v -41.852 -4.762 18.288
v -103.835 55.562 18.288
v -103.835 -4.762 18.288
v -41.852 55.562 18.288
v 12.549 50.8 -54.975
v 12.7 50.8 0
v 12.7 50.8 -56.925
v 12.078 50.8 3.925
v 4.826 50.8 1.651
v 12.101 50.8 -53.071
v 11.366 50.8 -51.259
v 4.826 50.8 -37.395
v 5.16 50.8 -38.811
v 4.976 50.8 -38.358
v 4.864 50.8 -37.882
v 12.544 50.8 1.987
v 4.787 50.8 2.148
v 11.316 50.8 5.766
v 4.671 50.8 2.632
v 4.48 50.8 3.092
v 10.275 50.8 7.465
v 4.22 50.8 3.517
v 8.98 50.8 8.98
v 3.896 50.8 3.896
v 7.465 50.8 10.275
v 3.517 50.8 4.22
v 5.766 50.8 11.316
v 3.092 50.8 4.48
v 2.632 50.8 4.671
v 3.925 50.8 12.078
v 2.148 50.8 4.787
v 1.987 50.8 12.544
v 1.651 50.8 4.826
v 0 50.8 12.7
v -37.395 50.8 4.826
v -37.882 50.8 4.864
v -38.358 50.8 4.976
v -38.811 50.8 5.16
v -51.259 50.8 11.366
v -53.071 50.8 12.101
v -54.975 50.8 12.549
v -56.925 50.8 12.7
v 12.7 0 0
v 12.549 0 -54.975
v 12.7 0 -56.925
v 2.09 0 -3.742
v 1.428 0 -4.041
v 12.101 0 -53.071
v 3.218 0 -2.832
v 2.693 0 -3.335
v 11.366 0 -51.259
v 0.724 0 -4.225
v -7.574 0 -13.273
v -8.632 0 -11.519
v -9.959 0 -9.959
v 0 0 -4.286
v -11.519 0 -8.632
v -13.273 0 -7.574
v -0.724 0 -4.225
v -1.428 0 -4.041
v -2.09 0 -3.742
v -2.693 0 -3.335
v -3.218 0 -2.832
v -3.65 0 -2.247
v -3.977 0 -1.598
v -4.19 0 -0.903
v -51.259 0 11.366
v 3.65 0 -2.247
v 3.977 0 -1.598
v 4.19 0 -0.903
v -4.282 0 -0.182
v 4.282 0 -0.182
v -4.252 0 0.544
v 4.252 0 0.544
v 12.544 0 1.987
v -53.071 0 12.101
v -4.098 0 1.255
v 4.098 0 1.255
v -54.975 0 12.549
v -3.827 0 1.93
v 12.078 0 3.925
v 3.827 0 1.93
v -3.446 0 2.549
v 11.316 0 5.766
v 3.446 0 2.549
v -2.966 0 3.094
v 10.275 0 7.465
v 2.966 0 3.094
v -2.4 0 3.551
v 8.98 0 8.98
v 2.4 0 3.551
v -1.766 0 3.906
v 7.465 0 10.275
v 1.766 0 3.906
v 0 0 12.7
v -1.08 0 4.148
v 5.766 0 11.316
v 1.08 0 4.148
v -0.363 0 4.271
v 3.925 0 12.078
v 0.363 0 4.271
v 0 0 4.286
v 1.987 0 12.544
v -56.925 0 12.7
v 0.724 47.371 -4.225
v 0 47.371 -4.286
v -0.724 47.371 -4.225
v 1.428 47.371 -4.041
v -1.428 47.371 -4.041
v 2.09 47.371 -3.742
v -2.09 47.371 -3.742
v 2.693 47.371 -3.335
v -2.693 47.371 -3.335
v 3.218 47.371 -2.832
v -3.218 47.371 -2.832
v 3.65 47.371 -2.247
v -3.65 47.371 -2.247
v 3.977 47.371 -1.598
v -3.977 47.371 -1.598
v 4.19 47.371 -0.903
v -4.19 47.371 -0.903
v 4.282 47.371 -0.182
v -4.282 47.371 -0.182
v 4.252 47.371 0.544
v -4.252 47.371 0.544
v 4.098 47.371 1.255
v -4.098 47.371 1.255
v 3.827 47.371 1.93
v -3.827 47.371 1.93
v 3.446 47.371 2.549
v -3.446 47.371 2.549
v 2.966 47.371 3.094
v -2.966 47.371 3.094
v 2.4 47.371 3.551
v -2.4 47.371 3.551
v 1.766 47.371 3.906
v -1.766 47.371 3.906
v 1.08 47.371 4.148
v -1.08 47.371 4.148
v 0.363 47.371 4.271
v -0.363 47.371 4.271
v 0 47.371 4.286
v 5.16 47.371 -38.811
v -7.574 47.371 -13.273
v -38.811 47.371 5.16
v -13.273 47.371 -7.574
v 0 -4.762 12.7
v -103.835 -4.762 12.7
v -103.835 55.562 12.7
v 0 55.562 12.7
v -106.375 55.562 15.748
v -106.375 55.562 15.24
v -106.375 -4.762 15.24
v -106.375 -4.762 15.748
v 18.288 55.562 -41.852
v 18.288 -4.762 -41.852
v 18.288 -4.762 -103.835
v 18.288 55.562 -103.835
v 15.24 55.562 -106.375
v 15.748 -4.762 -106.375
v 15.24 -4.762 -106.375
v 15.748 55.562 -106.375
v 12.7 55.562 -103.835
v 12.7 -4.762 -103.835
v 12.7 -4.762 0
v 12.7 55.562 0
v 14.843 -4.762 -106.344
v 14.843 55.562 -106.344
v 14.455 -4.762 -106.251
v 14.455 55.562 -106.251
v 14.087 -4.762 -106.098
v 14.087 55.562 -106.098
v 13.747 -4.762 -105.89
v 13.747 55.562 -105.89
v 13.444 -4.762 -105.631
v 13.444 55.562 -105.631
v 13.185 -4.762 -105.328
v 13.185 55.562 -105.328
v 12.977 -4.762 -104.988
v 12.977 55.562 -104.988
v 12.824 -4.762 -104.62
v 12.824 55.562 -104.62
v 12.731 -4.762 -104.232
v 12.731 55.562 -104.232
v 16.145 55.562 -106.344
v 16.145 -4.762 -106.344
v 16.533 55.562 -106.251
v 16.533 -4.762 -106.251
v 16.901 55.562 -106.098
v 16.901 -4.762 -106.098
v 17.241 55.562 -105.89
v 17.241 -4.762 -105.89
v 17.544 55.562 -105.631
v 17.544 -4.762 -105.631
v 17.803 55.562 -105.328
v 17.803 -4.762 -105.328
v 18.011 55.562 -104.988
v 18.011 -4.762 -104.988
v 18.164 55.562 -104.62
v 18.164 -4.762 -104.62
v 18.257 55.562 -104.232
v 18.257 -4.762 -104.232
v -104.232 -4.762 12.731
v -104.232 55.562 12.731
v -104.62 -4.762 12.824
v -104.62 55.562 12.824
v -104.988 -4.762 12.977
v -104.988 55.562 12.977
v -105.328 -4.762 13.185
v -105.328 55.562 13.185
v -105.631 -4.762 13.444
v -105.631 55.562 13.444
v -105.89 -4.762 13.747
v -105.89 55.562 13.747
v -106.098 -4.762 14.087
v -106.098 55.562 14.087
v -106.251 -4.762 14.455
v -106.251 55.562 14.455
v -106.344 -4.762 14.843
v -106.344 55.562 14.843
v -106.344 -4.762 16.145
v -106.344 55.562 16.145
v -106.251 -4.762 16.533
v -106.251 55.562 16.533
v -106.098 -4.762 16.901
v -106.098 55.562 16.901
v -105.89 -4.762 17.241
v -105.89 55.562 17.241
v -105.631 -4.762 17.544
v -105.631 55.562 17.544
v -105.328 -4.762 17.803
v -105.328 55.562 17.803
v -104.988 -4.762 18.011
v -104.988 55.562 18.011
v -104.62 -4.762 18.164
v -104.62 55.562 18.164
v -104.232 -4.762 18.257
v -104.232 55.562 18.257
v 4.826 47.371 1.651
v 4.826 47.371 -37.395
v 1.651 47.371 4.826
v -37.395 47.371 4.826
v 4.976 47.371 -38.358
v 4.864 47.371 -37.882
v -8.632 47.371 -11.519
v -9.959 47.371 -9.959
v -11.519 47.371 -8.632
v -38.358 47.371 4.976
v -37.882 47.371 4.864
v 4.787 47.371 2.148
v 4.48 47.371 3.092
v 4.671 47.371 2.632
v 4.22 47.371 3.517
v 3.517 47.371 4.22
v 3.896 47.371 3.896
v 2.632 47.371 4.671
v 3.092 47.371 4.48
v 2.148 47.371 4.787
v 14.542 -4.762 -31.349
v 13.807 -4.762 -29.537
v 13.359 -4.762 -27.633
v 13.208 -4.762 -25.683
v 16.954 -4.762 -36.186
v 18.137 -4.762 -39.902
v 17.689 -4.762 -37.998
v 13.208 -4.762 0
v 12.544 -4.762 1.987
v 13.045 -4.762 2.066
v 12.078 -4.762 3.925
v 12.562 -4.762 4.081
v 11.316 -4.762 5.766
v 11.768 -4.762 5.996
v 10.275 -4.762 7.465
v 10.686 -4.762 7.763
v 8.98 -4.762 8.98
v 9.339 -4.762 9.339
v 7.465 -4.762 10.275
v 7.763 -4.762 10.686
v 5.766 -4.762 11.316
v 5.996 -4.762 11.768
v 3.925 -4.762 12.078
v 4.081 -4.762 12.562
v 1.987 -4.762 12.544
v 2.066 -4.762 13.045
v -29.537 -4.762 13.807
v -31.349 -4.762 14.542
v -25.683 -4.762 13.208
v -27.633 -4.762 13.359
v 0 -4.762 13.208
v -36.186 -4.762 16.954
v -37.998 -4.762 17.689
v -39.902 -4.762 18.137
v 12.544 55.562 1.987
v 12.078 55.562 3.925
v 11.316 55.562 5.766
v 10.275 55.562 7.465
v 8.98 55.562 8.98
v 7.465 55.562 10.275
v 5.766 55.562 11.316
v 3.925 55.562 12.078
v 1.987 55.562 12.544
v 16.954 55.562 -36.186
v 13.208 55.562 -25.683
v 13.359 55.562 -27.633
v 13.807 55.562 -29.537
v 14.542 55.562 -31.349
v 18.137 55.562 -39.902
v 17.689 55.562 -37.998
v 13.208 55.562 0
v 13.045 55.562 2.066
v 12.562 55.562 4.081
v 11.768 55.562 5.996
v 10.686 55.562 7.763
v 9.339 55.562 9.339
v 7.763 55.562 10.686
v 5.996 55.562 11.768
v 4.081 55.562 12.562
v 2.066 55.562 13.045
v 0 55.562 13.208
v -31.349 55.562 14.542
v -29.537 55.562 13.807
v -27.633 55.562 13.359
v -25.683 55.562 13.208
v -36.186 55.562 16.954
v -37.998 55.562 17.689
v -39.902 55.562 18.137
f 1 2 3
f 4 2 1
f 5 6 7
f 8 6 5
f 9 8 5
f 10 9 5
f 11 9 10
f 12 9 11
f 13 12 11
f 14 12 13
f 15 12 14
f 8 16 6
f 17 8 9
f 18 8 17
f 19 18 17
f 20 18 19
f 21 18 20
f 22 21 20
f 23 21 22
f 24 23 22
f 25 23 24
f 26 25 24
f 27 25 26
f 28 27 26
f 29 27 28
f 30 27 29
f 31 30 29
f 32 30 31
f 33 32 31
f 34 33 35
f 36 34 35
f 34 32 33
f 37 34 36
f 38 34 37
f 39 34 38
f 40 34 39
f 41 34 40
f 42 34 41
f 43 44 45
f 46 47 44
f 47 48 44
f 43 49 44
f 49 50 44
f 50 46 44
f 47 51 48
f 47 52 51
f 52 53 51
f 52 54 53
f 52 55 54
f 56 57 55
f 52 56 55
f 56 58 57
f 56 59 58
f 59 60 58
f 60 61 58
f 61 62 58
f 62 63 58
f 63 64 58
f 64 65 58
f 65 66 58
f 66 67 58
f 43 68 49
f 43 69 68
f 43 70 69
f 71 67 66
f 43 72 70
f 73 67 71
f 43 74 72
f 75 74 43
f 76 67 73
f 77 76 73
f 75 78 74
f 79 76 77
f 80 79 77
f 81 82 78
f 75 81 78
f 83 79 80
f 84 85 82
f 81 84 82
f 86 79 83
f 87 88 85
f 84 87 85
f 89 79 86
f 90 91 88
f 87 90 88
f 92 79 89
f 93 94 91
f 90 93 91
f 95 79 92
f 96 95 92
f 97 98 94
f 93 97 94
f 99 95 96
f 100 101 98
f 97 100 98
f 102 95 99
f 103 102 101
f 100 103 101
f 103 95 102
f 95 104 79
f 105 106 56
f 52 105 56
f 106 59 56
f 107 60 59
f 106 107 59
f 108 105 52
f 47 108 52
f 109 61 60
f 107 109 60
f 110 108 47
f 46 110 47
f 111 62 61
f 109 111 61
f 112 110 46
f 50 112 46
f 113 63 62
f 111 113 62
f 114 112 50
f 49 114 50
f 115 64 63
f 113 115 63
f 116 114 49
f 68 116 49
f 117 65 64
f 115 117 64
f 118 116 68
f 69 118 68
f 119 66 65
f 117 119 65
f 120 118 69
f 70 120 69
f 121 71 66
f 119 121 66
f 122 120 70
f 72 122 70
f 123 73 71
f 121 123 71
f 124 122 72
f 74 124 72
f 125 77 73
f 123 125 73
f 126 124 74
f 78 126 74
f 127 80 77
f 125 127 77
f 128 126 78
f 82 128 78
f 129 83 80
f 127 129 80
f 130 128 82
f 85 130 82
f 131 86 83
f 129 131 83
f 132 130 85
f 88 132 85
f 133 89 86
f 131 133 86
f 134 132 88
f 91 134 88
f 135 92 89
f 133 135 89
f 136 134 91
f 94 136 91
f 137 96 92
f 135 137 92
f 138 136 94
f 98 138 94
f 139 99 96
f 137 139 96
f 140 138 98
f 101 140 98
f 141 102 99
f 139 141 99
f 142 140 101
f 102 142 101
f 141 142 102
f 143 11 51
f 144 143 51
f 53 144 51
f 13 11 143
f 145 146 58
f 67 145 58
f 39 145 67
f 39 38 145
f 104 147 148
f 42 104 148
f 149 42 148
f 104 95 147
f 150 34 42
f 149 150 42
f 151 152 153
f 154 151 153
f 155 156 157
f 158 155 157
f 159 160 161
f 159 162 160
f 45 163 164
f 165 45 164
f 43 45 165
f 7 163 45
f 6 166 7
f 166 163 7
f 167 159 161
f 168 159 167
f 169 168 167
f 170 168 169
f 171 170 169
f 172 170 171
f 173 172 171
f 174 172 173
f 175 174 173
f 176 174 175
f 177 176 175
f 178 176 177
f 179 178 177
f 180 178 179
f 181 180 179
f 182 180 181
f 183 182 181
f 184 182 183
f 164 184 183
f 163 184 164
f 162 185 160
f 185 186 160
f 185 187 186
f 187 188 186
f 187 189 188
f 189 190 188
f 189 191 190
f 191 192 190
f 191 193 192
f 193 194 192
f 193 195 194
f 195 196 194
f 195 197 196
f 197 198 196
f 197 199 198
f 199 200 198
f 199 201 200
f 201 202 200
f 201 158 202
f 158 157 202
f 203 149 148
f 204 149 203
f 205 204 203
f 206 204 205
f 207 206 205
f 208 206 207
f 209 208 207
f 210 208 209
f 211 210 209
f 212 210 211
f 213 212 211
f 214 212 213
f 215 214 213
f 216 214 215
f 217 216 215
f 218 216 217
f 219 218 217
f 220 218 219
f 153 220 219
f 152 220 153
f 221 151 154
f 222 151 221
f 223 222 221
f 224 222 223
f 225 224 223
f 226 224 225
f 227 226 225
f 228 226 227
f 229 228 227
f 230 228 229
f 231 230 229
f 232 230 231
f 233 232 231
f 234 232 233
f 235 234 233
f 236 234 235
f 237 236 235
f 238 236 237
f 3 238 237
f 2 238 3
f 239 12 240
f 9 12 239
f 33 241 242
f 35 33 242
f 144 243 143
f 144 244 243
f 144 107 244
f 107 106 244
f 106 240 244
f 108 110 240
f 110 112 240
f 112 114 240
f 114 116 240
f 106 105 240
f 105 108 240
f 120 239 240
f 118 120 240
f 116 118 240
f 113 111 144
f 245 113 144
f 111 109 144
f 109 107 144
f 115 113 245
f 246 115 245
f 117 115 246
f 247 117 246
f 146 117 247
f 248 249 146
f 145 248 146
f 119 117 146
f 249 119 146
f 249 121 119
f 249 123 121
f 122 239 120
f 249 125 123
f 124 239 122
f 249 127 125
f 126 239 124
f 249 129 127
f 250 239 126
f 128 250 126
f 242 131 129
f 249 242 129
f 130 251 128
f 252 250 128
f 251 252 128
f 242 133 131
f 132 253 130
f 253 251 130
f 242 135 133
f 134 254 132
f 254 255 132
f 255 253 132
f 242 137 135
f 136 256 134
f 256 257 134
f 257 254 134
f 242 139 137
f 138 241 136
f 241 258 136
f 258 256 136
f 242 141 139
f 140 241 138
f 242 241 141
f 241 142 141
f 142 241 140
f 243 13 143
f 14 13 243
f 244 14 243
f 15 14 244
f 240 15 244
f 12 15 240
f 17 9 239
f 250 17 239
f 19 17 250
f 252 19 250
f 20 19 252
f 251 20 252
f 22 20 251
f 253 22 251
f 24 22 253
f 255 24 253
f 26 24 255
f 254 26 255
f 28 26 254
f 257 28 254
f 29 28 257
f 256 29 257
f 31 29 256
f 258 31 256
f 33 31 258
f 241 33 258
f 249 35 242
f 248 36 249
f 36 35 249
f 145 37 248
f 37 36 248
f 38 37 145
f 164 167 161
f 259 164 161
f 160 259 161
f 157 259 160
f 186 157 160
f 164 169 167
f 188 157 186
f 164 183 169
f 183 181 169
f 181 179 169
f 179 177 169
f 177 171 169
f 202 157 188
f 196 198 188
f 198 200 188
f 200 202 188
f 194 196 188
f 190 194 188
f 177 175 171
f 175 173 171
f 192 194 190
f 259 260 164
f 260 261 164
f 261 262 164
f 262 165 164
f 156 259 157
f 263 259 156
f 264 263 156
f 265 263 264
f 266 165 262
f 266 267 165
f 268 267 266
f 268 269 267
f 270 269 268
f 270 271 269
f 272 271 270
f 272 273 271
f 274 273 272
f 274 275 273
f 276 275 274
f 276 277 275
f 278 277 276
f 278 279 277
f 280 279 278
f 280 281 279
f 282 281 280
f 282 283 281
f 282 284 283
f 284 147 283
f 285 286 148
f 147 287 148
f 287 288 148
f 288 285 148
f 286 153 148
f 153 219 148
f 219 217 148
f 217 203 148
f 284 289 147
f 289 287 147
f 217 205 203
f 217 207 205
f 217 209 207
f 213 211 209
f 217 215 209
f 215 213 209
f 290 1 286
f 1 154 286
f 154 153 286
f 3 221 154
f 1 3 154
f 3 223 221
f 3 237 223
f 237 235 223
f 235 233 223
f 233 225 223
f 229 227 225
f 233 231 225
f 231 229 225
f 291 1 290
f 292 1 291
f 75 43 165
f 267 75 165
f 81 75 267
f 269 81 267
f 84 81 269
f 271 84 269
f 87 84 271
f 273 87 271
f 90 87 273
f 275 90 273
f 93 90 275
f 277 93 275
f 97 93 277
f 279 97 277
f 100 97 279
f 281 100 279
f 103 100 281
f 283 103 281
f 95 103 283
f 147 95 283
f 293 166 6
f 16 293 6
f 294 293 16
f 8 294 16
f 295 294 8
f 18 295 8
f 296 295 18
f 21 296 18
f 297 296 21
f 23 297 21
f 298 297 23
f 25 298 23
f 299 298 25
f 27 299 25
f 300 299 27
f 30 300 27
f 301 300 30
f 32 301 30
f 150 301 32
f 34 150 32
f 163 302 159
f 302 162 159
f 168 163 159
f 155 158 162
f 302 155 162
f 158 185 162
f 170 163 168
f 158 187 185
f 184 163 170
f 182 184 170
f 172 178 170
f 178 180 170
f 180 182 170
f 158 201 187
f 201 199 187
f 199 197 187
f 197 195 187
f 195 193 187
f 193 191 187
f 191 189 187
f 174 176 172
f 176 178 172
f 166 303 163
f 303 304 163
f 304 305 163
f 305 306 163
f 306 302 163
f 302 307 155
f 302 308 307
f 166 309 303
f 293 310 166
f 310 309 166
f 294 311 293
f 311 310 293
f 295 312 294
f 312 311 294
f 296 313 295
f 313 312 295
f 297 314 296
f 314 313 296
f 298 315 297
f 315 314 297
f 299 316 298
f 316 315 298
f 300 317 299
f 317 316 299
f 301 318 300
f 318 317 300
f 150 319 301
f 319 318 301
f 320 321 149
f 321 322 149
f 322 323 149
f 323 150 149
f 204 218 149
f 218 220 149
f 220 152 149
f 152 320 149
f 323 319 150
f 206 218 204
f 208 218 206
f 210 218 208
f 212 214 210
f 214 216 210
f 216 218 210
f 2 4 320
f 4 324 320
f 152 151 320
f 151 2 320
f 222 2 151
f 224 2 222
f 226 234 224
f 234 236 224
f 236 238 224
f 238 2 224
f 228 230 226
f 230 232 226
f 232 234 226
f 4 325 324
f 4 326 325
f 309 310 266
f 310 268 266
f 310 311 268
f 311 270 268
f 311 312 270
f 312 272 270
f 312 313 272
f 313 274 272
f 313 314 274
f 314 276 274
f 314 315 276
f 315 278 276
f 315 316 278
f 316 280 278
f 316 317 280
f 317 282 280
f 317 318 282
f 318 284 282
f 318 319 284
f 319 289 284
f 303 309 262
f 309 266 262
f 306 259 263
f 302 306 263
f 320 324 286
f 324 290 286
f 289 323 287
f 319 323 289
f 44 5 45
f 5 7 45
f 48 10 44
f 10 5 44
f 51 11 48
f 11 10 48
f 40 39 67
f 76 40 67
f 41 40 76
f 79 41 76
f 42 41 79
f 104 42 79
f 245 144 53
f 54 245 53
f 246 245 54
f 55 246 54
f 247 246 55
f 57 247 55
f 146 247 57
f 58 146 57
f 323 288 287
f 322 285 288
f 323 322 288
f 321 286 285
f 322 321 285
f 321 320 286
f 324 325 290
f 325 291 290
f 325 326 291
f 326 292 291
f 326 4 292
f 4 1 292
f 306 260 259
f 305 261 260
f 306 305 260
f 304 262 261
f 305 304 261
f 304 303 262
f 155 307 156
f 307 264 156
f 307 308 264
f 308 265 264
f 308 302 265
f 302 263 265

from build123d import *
from build123d.topology import SkipClean

# Parameters (mm, degrees)
SKETCH1_R           = 4.28625
BOSS_EXTRUDE1_DEPTH = 50.8
FILLET2_R           = 2.54
SKETCH7_W           = 42.968170869
SKETCH7_H           = 42.968170869
CUT_EXTRUDE3_DEPTH  = 3.429
FILLET9_R           = 3.175
BOSS_EXTRUDE2_DEPTH = 30.1625
CUT_EXTRUDE4_DEPTH  = 163.081683034
FILLET10_R          = 12.7


with BuildPart() as part:
    # Sketch1 → Boss-Extrude1 (new body)
    with BuildSketch(Plane(origin=(0, 0, 0), x_dir=(1, 0, 0), z_dir=(0, 1, 0))):
        with BuildLine():
            Line((-106.3752, -18.288), (0, -18.288))
            ThreePointArc((0, -18.288), (12.931568814, -12.931568814), (18.288, 0))
            Line((18.288, 0), (18.288, 106.3752))
            Line((18.288, 106.3752), (12.7, 106.3752))
            Line((12.7, 106.3752), (12.7, 53.934971632))
            Line((12.7, 53.934971632), (-9.469611004, 9.469611004))
            Line((-9.469611004, 9.469611004), (-53.934971632, -12.7))
            Line((-53.934971632, -12.7), (-106.3752, -12.7))
            Line((-106.3752, -12.7), (-106.3752, -18.288))
        make_face()
        Circle(SKETCH1_R, mode=Mode.SUBTRACT)
    extrude(amount=BOSS_EXTRUDE1_DEPTH)

    # Fillet2
    fillet2_edges = [part.edges().sort_by_distance(p)[0] for p in [
        (12.7, 25.4, -106.3752),
        (18.288, 25.4, -106.3752),
        (-106.3752, 25.4, 12.7),
        (-106.3752, 25.4, 18.288),
    ]]
    fillet(fillet2_edges, radius=FILLET2_R)

    # Sketch7 → Cut-Extrude3 (cut)
    with BuildSketch(Plane(origin=(0, 50.8, 0), x_dir=(1, 0, 0), z_dir=(0, 1, 0))):
        with Locations((-16.658085435, 16.658085435)):
            Rectangle(SKETCH7_W, SKETCH7_H)
    extrude(amount=-CUT_EXTRUDE3_DEPTH, mode=Mode.SUBTRACT)

    # Fillet9
    fillet9_edges = [part.edges().sort_by_distance(p)[0] for p in [
        (4.826, 49.0855, -38.142170869),
        (4.826, 49.0855, 4.826),
        (-38.142170869, 49.0855, 4.826),
    ]]
    fillet(fillet9_edges, radius=FILLET9_R)

    # Sketch8 → Boss-Extrude2 (add, symmetric)
    with SkipClean():  # the faces are left unmerged after this step: merging them gives an invalid solid
        with BuildSketch(Plane(origin=(0, 25.4, 0), x_dir=(1, 0, 0), z_dir=(0, 1, 0))):
            with BuildLine():
                Line((0, -12.7), (-103.8352, -12.7))
                ThreePointArc((-103.8352, -12.7), (-105.631251224, -13.443948776), (-106.3752, -15.24))
                Line((-106.3752, -15.24), (-106.3752, -15.748))
                ThreePointArc((-106.3752, -15.748), (-105.631251224, -17.544051224), (-103.8352, -18.288))
                Line((-103.8352, -18.288), (0, -18.288))
                ThreePointArc((0, -18.288), (12.931568814, -12.931568814), (18.288, 0))
                Line((18.288, 0), (18.288, 103.8352))
                ThreePointArc((18.288, 103.8352), (17.544051224, 105.631251224), (15.748, 106.3752))
                Line((15.748, 106.3752), (15.24, 106.3752))
                ThreePointArc((15.24, 106.3752), (13.443948776, 105.631251224), (12.7, 103.8352))
                Line((12.7, 103.8352), (12.7, 0))
                ThreePointArc((12.7, 0), (8.980256121, -8.980256121), (0, -12.7))
            make_face()
        extrude(amount=BOSS_EXTRUDE2_DEPTH, both=True)
    add(part.part.scale(1), mode=Mode.REPLACE)  # the faces are merged on a copy

    # Sketch9 → Cut-Extrude4 (cut, through all)
    with BuildSketch(Plane(origin=(0, 55.5625, 0), x_dir=(1, 0, 0), z_dir=(0, 1, 0))):
        with BuildLine():
            Line((-28.673096282, -13.208), (-38.862, -18.288))
            Line((-38.862, -18.288), (0, -18.288))
            ThreePointArc((0, -18.288), (12.931568814, -12.931568814), (18.288, 0))
            Line((18.288, 0), (18.288, 38.862))
            Line((18.288, 38.862), (13.208, 28.673096282))
            Line((13.208, 28.673096282), (13.208, 0))
            ThreePointArc((13.208, 0), (9.339466366, -9.339466366), (0, -13.208))
            Line((0, -13.208), (-28.673096282, -13.208))
        make_face()
    extrude(amount=-CUT_EXTRUDE4_DEPTH, mode=Mode.SUBTRACT)

    # Fillet10
    fillet10_edges = [part.edges().sort_by_distance(p)[0] for p in [
        (-38.862, 25.4, 18.288),
        (13.208, 25.4, -28.673096282),
        (18.288, 25.4, -38.862),
        (-28.673096282, 25.4, 13.208),
        (12.7, 25.4, -53.934971632),
        (-53.934971632, 25.4, 12.7),
        (-9.469611004, 23.6855, -9.469611004),
    ]]
    fillet(fillet10_edges, radius=FILLET10_R)


solid = part.part
